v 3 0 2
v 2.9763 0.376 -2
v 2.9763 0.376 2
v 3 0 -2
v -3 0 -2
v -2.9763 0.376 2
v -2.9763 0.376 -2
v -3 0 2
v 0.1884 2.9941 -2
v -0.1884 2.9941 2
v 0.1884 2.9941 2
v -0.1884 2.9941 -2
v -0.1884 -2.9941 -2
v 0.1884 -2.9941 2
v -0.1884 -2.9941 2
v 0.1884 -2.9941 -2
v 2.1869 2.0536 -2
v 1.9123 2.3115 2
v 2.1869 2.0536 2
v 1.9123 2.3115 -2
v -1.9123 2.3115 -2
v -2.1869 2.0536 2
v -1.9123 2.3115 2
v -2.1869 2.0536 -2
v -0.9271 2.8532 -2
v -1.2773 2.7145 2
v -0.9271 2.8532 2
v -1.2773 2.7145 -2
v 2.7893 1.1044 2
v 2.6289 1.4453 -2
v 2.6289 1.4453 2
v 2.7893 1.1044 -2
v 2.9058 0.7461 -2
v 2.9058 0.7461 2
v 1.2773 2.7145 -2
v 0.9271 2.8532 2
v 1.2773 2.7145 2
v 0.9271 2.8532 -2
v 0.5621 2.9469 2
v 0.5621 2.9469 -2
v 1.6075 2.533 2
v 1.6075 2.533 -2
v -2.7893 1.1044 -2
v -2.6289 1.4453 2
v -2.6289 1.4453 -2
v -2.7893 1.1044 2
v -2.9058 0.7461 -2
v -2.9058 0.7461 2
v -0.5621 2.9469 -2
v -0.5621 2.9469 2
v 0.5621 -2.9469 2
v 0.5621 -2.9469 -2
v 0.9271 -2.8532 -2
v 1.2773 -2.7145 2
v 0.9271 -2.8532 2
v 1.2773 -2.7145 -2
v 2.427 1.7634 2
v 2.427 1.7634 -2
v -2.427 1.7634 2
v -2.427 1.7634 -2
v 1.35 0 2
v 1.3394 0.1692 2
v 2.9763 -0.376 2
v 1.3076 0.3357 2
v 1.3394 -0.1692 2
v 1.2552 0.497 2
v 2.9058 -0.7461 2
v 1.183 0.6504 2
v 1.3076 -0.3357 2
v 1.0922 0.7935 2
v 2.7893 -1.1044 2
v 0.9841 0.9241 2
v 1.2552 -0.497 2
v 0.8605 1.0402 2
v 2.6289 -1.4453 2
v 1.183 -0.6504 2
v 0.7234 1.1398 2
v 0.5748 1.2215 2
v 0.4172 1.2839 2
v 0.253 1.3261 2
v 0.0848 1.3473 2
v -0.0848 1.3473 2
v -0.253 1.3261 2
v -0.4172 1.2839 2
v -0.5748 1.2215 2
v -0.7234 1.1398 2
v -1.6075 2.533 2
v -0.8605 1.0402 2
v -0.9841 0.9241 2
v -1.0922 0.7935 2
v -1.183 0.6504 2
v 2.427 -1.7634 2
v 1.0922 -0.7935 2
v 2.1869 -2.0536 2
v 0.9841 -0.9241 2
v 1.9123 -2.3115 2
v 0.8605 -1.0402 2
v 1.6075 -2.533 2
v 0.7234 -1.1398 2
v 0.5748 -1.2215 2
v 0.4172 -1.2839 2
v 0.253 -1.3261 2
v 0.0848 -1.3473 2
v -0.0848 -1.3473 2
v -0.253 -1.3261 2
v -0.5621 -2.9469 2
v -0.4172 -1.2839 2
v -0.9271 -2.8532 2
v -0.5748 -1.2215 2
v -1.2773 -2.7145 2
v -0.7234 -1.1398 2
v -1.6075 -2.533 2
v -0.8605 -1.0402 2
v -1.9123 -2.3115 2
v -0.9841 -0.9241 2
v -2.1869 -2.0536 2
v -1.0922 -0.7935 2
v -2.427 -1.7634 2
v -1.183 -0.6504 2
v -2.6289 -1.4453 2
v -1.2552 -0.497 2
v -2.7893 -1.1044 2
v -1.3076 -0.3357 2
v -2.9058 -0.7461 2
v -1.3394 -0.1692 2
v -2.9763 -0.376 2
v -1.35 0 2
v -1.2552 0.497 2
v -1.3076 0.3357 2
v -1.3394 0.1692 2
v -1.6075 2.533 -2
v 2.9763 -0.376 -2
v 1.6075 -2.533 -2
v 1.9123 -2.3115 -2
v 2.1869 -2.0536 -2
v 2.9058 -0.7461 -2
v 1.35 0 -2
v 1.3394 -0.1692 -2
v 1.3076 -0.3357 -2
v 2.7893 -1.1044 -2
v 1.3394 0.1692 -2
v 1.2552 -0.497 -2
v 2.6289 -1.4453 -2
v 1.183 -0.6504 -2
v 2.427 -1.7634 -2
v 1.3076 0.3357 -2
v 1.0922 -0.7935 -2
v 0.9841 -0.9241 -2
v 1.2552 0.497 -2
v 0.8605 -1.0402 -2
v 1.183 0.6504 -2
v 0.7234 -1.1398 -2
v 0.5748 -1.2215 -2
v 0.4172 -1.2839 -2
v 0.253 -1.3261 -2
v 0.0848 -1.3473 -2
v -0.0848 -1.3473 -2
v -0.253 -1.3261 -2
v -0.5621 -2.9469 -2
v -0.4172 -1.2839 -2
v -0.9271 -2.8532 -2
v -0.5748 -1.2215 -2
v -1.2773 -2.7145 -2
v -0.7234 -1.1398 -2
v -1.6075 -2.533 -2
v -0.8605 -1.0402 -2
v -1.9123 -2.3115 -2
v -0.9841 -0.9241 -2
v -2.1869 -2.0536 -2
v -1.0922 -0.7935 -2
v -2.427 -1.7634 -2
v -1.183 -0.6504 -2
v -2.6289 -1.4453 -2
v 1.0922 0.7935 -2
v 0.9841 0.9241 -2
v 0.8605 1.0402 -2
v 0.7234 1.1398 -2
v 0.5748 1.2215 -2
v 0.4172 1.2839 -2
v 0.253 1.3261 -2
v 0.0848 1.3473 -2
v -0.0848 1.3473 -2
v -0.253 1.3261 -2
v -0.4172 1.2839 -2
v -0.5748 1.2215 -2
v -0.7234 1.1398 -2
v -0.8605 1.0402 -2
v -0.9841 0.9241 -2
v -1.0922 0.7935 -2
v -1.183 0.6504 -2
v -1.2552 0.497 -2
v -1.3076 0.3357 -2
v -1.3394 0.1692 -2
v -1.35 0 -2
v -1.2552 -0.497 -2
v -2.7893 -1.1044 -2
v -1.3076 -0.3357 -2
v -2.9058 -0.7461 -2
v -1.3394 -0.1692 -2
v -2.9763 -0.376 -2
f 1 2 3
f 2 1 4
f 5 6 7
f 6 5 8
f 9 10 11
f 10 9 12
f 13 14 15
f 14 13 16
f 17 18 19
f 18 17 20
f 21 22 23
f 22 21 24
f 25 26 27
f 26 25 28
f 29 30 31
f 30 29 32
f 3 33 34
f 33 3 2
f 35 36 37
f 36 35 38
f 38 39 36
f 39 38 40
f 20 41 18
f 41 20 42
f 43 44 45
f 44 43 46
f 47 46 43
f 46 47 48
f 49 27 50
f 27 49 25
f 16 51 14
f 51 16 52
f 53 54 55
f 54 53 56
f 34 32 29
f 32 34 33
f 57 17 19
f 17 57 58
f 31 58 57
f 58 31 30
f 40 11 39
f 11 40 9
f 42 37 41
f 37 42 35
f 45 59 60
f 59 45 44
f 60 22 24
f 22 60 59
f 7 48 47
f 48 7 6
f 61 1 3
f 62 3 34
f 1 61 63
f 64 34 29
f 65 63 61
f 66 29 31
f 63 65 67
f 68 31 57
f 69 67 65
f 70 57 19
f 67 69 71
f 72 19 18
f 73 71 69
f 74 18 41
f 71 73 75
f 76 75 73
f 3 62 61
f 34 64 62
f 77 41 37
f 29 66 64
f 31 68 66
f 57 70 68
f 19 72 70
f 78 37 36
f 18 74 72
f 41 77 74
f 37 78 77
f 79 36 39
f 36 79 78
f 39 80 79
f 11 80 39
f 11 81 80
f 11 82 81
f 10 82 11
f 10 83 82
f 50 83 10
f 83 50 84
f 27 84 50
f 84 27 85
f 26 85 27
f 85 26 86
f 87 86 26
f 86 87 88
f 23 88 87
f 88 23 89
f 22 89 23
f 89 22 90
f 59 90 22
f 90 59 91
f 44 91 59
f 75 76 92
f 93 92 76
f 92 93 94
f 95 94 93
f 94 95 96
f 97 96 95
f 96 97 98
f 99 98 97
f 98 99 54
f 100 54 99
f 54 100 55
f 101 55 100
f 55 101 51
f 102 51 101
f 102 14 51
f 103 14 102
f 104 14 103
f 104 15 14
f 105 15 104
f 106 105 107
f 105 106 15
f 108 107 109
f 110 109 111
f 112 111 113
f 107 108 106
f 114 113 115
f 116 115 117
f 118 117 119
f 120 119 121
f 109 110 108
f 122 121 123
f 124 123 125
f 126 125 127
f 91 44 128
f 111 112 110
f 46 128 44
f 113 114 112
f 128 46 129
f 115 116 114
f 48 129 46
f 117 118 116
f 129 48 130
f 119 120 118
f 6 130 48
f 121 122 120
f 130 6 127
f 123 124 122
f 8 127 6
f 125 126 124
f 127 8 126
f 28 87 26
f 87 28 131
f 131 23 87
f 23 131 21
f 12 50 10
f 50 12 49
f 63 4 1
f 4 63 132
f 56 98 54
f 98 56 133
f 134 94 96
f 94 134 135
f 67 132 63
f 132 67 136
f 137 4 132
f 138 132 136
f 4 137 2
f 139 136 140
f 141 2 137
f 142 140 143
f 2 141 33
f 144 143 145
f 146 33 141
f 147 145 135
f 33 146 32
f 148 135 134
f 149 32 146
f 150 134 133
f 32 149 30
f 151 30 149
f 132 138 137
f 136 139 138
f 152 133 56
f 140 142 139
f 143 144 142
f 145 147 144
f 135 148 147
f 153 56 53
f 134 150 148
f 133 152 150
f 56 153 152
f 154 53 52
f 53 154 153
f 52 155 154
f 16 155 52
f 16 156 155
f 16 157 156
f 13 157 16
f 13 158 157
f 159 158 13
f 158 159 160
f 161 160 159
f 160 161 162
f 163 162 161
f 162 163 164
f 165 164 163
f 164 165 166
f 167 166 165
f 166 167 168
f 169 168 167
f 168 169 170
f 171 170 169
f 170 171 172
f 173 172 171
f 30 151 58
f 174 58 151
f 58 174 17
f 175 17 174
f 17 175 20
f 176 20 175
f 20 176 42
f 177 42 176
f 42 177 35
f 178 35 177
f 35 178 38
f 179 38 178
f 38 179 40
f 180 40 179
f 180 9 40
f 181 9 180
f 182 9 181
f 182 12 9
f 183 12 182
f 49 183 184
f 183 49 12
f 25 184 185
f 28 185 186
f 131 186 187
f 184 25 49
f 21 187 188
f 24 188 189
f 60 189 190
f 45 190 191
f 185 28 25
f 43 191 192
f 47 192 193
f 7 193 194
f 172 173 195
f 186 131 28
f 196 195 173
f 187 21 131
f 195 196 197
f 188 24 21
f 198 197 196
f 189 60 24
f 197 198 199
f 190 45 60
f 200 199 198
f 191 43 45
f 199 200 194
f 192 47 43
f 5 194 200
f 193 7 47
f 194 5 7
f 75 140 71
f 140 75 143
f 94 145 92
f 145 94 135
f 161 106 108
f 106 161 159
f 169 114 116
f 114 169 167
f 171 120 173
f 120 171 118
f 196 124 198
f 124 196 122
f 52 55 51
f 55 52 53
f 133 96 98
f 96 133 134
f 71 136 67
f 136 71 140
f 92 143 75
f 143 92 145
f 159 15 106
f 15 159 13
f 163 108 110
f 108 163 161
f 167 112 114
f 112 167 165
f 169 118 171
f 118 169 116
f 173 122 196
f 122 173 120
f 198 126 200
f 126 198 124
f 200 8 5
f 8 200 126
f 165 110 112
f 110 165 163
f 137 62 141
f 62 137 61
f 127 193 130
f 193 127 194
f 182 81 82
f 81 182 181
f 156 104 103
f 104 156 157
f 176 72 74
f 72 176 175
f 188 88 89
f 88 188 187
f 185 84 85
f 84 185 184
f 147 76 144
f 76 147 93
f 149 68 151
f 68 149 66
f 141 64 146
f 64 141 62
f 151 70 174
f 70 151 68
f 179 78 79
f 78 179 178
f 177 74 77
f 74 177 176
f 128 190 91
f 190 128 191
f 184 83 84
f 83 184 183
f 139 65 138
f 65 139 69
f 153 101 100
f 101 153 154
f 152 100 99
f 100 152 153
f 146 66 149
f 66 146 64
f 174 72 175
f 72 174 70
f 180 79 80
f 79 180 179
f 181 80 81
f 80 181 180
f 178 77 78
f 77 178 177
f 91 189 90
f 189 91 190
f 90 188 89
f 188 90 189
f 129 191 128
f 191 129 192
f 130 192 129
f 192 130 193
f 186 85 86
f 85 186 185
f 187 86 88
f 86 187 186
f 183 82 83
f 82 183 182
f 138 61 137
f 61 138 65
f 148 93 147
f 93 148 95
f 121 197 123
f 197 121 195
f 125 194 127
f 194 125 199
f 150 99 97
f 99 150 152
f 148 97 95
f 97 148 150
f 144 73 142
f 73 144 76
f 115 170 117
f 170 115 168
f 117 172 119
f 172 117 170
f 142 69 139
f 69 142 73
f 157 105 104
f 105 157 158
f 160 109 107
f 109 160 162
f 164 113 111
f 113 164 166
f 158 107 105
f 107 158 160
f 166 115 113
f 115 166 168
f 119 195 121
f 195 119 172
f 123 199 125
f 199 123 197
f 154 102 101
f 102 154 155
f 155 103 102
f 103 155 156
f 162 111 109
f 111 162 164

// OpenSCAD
$fn = 50;


difference() {
	union() {
		translate(v = [0, 0, -2.0000000000]) {
			cylinder(h = 4, r = 3.0000000000);
		}
	}
	union() {
		translate(v = [0, 0, -100.0000000000]) {
			cylinder(h = 200, r = 1.3500000000);
		}
	}
}
